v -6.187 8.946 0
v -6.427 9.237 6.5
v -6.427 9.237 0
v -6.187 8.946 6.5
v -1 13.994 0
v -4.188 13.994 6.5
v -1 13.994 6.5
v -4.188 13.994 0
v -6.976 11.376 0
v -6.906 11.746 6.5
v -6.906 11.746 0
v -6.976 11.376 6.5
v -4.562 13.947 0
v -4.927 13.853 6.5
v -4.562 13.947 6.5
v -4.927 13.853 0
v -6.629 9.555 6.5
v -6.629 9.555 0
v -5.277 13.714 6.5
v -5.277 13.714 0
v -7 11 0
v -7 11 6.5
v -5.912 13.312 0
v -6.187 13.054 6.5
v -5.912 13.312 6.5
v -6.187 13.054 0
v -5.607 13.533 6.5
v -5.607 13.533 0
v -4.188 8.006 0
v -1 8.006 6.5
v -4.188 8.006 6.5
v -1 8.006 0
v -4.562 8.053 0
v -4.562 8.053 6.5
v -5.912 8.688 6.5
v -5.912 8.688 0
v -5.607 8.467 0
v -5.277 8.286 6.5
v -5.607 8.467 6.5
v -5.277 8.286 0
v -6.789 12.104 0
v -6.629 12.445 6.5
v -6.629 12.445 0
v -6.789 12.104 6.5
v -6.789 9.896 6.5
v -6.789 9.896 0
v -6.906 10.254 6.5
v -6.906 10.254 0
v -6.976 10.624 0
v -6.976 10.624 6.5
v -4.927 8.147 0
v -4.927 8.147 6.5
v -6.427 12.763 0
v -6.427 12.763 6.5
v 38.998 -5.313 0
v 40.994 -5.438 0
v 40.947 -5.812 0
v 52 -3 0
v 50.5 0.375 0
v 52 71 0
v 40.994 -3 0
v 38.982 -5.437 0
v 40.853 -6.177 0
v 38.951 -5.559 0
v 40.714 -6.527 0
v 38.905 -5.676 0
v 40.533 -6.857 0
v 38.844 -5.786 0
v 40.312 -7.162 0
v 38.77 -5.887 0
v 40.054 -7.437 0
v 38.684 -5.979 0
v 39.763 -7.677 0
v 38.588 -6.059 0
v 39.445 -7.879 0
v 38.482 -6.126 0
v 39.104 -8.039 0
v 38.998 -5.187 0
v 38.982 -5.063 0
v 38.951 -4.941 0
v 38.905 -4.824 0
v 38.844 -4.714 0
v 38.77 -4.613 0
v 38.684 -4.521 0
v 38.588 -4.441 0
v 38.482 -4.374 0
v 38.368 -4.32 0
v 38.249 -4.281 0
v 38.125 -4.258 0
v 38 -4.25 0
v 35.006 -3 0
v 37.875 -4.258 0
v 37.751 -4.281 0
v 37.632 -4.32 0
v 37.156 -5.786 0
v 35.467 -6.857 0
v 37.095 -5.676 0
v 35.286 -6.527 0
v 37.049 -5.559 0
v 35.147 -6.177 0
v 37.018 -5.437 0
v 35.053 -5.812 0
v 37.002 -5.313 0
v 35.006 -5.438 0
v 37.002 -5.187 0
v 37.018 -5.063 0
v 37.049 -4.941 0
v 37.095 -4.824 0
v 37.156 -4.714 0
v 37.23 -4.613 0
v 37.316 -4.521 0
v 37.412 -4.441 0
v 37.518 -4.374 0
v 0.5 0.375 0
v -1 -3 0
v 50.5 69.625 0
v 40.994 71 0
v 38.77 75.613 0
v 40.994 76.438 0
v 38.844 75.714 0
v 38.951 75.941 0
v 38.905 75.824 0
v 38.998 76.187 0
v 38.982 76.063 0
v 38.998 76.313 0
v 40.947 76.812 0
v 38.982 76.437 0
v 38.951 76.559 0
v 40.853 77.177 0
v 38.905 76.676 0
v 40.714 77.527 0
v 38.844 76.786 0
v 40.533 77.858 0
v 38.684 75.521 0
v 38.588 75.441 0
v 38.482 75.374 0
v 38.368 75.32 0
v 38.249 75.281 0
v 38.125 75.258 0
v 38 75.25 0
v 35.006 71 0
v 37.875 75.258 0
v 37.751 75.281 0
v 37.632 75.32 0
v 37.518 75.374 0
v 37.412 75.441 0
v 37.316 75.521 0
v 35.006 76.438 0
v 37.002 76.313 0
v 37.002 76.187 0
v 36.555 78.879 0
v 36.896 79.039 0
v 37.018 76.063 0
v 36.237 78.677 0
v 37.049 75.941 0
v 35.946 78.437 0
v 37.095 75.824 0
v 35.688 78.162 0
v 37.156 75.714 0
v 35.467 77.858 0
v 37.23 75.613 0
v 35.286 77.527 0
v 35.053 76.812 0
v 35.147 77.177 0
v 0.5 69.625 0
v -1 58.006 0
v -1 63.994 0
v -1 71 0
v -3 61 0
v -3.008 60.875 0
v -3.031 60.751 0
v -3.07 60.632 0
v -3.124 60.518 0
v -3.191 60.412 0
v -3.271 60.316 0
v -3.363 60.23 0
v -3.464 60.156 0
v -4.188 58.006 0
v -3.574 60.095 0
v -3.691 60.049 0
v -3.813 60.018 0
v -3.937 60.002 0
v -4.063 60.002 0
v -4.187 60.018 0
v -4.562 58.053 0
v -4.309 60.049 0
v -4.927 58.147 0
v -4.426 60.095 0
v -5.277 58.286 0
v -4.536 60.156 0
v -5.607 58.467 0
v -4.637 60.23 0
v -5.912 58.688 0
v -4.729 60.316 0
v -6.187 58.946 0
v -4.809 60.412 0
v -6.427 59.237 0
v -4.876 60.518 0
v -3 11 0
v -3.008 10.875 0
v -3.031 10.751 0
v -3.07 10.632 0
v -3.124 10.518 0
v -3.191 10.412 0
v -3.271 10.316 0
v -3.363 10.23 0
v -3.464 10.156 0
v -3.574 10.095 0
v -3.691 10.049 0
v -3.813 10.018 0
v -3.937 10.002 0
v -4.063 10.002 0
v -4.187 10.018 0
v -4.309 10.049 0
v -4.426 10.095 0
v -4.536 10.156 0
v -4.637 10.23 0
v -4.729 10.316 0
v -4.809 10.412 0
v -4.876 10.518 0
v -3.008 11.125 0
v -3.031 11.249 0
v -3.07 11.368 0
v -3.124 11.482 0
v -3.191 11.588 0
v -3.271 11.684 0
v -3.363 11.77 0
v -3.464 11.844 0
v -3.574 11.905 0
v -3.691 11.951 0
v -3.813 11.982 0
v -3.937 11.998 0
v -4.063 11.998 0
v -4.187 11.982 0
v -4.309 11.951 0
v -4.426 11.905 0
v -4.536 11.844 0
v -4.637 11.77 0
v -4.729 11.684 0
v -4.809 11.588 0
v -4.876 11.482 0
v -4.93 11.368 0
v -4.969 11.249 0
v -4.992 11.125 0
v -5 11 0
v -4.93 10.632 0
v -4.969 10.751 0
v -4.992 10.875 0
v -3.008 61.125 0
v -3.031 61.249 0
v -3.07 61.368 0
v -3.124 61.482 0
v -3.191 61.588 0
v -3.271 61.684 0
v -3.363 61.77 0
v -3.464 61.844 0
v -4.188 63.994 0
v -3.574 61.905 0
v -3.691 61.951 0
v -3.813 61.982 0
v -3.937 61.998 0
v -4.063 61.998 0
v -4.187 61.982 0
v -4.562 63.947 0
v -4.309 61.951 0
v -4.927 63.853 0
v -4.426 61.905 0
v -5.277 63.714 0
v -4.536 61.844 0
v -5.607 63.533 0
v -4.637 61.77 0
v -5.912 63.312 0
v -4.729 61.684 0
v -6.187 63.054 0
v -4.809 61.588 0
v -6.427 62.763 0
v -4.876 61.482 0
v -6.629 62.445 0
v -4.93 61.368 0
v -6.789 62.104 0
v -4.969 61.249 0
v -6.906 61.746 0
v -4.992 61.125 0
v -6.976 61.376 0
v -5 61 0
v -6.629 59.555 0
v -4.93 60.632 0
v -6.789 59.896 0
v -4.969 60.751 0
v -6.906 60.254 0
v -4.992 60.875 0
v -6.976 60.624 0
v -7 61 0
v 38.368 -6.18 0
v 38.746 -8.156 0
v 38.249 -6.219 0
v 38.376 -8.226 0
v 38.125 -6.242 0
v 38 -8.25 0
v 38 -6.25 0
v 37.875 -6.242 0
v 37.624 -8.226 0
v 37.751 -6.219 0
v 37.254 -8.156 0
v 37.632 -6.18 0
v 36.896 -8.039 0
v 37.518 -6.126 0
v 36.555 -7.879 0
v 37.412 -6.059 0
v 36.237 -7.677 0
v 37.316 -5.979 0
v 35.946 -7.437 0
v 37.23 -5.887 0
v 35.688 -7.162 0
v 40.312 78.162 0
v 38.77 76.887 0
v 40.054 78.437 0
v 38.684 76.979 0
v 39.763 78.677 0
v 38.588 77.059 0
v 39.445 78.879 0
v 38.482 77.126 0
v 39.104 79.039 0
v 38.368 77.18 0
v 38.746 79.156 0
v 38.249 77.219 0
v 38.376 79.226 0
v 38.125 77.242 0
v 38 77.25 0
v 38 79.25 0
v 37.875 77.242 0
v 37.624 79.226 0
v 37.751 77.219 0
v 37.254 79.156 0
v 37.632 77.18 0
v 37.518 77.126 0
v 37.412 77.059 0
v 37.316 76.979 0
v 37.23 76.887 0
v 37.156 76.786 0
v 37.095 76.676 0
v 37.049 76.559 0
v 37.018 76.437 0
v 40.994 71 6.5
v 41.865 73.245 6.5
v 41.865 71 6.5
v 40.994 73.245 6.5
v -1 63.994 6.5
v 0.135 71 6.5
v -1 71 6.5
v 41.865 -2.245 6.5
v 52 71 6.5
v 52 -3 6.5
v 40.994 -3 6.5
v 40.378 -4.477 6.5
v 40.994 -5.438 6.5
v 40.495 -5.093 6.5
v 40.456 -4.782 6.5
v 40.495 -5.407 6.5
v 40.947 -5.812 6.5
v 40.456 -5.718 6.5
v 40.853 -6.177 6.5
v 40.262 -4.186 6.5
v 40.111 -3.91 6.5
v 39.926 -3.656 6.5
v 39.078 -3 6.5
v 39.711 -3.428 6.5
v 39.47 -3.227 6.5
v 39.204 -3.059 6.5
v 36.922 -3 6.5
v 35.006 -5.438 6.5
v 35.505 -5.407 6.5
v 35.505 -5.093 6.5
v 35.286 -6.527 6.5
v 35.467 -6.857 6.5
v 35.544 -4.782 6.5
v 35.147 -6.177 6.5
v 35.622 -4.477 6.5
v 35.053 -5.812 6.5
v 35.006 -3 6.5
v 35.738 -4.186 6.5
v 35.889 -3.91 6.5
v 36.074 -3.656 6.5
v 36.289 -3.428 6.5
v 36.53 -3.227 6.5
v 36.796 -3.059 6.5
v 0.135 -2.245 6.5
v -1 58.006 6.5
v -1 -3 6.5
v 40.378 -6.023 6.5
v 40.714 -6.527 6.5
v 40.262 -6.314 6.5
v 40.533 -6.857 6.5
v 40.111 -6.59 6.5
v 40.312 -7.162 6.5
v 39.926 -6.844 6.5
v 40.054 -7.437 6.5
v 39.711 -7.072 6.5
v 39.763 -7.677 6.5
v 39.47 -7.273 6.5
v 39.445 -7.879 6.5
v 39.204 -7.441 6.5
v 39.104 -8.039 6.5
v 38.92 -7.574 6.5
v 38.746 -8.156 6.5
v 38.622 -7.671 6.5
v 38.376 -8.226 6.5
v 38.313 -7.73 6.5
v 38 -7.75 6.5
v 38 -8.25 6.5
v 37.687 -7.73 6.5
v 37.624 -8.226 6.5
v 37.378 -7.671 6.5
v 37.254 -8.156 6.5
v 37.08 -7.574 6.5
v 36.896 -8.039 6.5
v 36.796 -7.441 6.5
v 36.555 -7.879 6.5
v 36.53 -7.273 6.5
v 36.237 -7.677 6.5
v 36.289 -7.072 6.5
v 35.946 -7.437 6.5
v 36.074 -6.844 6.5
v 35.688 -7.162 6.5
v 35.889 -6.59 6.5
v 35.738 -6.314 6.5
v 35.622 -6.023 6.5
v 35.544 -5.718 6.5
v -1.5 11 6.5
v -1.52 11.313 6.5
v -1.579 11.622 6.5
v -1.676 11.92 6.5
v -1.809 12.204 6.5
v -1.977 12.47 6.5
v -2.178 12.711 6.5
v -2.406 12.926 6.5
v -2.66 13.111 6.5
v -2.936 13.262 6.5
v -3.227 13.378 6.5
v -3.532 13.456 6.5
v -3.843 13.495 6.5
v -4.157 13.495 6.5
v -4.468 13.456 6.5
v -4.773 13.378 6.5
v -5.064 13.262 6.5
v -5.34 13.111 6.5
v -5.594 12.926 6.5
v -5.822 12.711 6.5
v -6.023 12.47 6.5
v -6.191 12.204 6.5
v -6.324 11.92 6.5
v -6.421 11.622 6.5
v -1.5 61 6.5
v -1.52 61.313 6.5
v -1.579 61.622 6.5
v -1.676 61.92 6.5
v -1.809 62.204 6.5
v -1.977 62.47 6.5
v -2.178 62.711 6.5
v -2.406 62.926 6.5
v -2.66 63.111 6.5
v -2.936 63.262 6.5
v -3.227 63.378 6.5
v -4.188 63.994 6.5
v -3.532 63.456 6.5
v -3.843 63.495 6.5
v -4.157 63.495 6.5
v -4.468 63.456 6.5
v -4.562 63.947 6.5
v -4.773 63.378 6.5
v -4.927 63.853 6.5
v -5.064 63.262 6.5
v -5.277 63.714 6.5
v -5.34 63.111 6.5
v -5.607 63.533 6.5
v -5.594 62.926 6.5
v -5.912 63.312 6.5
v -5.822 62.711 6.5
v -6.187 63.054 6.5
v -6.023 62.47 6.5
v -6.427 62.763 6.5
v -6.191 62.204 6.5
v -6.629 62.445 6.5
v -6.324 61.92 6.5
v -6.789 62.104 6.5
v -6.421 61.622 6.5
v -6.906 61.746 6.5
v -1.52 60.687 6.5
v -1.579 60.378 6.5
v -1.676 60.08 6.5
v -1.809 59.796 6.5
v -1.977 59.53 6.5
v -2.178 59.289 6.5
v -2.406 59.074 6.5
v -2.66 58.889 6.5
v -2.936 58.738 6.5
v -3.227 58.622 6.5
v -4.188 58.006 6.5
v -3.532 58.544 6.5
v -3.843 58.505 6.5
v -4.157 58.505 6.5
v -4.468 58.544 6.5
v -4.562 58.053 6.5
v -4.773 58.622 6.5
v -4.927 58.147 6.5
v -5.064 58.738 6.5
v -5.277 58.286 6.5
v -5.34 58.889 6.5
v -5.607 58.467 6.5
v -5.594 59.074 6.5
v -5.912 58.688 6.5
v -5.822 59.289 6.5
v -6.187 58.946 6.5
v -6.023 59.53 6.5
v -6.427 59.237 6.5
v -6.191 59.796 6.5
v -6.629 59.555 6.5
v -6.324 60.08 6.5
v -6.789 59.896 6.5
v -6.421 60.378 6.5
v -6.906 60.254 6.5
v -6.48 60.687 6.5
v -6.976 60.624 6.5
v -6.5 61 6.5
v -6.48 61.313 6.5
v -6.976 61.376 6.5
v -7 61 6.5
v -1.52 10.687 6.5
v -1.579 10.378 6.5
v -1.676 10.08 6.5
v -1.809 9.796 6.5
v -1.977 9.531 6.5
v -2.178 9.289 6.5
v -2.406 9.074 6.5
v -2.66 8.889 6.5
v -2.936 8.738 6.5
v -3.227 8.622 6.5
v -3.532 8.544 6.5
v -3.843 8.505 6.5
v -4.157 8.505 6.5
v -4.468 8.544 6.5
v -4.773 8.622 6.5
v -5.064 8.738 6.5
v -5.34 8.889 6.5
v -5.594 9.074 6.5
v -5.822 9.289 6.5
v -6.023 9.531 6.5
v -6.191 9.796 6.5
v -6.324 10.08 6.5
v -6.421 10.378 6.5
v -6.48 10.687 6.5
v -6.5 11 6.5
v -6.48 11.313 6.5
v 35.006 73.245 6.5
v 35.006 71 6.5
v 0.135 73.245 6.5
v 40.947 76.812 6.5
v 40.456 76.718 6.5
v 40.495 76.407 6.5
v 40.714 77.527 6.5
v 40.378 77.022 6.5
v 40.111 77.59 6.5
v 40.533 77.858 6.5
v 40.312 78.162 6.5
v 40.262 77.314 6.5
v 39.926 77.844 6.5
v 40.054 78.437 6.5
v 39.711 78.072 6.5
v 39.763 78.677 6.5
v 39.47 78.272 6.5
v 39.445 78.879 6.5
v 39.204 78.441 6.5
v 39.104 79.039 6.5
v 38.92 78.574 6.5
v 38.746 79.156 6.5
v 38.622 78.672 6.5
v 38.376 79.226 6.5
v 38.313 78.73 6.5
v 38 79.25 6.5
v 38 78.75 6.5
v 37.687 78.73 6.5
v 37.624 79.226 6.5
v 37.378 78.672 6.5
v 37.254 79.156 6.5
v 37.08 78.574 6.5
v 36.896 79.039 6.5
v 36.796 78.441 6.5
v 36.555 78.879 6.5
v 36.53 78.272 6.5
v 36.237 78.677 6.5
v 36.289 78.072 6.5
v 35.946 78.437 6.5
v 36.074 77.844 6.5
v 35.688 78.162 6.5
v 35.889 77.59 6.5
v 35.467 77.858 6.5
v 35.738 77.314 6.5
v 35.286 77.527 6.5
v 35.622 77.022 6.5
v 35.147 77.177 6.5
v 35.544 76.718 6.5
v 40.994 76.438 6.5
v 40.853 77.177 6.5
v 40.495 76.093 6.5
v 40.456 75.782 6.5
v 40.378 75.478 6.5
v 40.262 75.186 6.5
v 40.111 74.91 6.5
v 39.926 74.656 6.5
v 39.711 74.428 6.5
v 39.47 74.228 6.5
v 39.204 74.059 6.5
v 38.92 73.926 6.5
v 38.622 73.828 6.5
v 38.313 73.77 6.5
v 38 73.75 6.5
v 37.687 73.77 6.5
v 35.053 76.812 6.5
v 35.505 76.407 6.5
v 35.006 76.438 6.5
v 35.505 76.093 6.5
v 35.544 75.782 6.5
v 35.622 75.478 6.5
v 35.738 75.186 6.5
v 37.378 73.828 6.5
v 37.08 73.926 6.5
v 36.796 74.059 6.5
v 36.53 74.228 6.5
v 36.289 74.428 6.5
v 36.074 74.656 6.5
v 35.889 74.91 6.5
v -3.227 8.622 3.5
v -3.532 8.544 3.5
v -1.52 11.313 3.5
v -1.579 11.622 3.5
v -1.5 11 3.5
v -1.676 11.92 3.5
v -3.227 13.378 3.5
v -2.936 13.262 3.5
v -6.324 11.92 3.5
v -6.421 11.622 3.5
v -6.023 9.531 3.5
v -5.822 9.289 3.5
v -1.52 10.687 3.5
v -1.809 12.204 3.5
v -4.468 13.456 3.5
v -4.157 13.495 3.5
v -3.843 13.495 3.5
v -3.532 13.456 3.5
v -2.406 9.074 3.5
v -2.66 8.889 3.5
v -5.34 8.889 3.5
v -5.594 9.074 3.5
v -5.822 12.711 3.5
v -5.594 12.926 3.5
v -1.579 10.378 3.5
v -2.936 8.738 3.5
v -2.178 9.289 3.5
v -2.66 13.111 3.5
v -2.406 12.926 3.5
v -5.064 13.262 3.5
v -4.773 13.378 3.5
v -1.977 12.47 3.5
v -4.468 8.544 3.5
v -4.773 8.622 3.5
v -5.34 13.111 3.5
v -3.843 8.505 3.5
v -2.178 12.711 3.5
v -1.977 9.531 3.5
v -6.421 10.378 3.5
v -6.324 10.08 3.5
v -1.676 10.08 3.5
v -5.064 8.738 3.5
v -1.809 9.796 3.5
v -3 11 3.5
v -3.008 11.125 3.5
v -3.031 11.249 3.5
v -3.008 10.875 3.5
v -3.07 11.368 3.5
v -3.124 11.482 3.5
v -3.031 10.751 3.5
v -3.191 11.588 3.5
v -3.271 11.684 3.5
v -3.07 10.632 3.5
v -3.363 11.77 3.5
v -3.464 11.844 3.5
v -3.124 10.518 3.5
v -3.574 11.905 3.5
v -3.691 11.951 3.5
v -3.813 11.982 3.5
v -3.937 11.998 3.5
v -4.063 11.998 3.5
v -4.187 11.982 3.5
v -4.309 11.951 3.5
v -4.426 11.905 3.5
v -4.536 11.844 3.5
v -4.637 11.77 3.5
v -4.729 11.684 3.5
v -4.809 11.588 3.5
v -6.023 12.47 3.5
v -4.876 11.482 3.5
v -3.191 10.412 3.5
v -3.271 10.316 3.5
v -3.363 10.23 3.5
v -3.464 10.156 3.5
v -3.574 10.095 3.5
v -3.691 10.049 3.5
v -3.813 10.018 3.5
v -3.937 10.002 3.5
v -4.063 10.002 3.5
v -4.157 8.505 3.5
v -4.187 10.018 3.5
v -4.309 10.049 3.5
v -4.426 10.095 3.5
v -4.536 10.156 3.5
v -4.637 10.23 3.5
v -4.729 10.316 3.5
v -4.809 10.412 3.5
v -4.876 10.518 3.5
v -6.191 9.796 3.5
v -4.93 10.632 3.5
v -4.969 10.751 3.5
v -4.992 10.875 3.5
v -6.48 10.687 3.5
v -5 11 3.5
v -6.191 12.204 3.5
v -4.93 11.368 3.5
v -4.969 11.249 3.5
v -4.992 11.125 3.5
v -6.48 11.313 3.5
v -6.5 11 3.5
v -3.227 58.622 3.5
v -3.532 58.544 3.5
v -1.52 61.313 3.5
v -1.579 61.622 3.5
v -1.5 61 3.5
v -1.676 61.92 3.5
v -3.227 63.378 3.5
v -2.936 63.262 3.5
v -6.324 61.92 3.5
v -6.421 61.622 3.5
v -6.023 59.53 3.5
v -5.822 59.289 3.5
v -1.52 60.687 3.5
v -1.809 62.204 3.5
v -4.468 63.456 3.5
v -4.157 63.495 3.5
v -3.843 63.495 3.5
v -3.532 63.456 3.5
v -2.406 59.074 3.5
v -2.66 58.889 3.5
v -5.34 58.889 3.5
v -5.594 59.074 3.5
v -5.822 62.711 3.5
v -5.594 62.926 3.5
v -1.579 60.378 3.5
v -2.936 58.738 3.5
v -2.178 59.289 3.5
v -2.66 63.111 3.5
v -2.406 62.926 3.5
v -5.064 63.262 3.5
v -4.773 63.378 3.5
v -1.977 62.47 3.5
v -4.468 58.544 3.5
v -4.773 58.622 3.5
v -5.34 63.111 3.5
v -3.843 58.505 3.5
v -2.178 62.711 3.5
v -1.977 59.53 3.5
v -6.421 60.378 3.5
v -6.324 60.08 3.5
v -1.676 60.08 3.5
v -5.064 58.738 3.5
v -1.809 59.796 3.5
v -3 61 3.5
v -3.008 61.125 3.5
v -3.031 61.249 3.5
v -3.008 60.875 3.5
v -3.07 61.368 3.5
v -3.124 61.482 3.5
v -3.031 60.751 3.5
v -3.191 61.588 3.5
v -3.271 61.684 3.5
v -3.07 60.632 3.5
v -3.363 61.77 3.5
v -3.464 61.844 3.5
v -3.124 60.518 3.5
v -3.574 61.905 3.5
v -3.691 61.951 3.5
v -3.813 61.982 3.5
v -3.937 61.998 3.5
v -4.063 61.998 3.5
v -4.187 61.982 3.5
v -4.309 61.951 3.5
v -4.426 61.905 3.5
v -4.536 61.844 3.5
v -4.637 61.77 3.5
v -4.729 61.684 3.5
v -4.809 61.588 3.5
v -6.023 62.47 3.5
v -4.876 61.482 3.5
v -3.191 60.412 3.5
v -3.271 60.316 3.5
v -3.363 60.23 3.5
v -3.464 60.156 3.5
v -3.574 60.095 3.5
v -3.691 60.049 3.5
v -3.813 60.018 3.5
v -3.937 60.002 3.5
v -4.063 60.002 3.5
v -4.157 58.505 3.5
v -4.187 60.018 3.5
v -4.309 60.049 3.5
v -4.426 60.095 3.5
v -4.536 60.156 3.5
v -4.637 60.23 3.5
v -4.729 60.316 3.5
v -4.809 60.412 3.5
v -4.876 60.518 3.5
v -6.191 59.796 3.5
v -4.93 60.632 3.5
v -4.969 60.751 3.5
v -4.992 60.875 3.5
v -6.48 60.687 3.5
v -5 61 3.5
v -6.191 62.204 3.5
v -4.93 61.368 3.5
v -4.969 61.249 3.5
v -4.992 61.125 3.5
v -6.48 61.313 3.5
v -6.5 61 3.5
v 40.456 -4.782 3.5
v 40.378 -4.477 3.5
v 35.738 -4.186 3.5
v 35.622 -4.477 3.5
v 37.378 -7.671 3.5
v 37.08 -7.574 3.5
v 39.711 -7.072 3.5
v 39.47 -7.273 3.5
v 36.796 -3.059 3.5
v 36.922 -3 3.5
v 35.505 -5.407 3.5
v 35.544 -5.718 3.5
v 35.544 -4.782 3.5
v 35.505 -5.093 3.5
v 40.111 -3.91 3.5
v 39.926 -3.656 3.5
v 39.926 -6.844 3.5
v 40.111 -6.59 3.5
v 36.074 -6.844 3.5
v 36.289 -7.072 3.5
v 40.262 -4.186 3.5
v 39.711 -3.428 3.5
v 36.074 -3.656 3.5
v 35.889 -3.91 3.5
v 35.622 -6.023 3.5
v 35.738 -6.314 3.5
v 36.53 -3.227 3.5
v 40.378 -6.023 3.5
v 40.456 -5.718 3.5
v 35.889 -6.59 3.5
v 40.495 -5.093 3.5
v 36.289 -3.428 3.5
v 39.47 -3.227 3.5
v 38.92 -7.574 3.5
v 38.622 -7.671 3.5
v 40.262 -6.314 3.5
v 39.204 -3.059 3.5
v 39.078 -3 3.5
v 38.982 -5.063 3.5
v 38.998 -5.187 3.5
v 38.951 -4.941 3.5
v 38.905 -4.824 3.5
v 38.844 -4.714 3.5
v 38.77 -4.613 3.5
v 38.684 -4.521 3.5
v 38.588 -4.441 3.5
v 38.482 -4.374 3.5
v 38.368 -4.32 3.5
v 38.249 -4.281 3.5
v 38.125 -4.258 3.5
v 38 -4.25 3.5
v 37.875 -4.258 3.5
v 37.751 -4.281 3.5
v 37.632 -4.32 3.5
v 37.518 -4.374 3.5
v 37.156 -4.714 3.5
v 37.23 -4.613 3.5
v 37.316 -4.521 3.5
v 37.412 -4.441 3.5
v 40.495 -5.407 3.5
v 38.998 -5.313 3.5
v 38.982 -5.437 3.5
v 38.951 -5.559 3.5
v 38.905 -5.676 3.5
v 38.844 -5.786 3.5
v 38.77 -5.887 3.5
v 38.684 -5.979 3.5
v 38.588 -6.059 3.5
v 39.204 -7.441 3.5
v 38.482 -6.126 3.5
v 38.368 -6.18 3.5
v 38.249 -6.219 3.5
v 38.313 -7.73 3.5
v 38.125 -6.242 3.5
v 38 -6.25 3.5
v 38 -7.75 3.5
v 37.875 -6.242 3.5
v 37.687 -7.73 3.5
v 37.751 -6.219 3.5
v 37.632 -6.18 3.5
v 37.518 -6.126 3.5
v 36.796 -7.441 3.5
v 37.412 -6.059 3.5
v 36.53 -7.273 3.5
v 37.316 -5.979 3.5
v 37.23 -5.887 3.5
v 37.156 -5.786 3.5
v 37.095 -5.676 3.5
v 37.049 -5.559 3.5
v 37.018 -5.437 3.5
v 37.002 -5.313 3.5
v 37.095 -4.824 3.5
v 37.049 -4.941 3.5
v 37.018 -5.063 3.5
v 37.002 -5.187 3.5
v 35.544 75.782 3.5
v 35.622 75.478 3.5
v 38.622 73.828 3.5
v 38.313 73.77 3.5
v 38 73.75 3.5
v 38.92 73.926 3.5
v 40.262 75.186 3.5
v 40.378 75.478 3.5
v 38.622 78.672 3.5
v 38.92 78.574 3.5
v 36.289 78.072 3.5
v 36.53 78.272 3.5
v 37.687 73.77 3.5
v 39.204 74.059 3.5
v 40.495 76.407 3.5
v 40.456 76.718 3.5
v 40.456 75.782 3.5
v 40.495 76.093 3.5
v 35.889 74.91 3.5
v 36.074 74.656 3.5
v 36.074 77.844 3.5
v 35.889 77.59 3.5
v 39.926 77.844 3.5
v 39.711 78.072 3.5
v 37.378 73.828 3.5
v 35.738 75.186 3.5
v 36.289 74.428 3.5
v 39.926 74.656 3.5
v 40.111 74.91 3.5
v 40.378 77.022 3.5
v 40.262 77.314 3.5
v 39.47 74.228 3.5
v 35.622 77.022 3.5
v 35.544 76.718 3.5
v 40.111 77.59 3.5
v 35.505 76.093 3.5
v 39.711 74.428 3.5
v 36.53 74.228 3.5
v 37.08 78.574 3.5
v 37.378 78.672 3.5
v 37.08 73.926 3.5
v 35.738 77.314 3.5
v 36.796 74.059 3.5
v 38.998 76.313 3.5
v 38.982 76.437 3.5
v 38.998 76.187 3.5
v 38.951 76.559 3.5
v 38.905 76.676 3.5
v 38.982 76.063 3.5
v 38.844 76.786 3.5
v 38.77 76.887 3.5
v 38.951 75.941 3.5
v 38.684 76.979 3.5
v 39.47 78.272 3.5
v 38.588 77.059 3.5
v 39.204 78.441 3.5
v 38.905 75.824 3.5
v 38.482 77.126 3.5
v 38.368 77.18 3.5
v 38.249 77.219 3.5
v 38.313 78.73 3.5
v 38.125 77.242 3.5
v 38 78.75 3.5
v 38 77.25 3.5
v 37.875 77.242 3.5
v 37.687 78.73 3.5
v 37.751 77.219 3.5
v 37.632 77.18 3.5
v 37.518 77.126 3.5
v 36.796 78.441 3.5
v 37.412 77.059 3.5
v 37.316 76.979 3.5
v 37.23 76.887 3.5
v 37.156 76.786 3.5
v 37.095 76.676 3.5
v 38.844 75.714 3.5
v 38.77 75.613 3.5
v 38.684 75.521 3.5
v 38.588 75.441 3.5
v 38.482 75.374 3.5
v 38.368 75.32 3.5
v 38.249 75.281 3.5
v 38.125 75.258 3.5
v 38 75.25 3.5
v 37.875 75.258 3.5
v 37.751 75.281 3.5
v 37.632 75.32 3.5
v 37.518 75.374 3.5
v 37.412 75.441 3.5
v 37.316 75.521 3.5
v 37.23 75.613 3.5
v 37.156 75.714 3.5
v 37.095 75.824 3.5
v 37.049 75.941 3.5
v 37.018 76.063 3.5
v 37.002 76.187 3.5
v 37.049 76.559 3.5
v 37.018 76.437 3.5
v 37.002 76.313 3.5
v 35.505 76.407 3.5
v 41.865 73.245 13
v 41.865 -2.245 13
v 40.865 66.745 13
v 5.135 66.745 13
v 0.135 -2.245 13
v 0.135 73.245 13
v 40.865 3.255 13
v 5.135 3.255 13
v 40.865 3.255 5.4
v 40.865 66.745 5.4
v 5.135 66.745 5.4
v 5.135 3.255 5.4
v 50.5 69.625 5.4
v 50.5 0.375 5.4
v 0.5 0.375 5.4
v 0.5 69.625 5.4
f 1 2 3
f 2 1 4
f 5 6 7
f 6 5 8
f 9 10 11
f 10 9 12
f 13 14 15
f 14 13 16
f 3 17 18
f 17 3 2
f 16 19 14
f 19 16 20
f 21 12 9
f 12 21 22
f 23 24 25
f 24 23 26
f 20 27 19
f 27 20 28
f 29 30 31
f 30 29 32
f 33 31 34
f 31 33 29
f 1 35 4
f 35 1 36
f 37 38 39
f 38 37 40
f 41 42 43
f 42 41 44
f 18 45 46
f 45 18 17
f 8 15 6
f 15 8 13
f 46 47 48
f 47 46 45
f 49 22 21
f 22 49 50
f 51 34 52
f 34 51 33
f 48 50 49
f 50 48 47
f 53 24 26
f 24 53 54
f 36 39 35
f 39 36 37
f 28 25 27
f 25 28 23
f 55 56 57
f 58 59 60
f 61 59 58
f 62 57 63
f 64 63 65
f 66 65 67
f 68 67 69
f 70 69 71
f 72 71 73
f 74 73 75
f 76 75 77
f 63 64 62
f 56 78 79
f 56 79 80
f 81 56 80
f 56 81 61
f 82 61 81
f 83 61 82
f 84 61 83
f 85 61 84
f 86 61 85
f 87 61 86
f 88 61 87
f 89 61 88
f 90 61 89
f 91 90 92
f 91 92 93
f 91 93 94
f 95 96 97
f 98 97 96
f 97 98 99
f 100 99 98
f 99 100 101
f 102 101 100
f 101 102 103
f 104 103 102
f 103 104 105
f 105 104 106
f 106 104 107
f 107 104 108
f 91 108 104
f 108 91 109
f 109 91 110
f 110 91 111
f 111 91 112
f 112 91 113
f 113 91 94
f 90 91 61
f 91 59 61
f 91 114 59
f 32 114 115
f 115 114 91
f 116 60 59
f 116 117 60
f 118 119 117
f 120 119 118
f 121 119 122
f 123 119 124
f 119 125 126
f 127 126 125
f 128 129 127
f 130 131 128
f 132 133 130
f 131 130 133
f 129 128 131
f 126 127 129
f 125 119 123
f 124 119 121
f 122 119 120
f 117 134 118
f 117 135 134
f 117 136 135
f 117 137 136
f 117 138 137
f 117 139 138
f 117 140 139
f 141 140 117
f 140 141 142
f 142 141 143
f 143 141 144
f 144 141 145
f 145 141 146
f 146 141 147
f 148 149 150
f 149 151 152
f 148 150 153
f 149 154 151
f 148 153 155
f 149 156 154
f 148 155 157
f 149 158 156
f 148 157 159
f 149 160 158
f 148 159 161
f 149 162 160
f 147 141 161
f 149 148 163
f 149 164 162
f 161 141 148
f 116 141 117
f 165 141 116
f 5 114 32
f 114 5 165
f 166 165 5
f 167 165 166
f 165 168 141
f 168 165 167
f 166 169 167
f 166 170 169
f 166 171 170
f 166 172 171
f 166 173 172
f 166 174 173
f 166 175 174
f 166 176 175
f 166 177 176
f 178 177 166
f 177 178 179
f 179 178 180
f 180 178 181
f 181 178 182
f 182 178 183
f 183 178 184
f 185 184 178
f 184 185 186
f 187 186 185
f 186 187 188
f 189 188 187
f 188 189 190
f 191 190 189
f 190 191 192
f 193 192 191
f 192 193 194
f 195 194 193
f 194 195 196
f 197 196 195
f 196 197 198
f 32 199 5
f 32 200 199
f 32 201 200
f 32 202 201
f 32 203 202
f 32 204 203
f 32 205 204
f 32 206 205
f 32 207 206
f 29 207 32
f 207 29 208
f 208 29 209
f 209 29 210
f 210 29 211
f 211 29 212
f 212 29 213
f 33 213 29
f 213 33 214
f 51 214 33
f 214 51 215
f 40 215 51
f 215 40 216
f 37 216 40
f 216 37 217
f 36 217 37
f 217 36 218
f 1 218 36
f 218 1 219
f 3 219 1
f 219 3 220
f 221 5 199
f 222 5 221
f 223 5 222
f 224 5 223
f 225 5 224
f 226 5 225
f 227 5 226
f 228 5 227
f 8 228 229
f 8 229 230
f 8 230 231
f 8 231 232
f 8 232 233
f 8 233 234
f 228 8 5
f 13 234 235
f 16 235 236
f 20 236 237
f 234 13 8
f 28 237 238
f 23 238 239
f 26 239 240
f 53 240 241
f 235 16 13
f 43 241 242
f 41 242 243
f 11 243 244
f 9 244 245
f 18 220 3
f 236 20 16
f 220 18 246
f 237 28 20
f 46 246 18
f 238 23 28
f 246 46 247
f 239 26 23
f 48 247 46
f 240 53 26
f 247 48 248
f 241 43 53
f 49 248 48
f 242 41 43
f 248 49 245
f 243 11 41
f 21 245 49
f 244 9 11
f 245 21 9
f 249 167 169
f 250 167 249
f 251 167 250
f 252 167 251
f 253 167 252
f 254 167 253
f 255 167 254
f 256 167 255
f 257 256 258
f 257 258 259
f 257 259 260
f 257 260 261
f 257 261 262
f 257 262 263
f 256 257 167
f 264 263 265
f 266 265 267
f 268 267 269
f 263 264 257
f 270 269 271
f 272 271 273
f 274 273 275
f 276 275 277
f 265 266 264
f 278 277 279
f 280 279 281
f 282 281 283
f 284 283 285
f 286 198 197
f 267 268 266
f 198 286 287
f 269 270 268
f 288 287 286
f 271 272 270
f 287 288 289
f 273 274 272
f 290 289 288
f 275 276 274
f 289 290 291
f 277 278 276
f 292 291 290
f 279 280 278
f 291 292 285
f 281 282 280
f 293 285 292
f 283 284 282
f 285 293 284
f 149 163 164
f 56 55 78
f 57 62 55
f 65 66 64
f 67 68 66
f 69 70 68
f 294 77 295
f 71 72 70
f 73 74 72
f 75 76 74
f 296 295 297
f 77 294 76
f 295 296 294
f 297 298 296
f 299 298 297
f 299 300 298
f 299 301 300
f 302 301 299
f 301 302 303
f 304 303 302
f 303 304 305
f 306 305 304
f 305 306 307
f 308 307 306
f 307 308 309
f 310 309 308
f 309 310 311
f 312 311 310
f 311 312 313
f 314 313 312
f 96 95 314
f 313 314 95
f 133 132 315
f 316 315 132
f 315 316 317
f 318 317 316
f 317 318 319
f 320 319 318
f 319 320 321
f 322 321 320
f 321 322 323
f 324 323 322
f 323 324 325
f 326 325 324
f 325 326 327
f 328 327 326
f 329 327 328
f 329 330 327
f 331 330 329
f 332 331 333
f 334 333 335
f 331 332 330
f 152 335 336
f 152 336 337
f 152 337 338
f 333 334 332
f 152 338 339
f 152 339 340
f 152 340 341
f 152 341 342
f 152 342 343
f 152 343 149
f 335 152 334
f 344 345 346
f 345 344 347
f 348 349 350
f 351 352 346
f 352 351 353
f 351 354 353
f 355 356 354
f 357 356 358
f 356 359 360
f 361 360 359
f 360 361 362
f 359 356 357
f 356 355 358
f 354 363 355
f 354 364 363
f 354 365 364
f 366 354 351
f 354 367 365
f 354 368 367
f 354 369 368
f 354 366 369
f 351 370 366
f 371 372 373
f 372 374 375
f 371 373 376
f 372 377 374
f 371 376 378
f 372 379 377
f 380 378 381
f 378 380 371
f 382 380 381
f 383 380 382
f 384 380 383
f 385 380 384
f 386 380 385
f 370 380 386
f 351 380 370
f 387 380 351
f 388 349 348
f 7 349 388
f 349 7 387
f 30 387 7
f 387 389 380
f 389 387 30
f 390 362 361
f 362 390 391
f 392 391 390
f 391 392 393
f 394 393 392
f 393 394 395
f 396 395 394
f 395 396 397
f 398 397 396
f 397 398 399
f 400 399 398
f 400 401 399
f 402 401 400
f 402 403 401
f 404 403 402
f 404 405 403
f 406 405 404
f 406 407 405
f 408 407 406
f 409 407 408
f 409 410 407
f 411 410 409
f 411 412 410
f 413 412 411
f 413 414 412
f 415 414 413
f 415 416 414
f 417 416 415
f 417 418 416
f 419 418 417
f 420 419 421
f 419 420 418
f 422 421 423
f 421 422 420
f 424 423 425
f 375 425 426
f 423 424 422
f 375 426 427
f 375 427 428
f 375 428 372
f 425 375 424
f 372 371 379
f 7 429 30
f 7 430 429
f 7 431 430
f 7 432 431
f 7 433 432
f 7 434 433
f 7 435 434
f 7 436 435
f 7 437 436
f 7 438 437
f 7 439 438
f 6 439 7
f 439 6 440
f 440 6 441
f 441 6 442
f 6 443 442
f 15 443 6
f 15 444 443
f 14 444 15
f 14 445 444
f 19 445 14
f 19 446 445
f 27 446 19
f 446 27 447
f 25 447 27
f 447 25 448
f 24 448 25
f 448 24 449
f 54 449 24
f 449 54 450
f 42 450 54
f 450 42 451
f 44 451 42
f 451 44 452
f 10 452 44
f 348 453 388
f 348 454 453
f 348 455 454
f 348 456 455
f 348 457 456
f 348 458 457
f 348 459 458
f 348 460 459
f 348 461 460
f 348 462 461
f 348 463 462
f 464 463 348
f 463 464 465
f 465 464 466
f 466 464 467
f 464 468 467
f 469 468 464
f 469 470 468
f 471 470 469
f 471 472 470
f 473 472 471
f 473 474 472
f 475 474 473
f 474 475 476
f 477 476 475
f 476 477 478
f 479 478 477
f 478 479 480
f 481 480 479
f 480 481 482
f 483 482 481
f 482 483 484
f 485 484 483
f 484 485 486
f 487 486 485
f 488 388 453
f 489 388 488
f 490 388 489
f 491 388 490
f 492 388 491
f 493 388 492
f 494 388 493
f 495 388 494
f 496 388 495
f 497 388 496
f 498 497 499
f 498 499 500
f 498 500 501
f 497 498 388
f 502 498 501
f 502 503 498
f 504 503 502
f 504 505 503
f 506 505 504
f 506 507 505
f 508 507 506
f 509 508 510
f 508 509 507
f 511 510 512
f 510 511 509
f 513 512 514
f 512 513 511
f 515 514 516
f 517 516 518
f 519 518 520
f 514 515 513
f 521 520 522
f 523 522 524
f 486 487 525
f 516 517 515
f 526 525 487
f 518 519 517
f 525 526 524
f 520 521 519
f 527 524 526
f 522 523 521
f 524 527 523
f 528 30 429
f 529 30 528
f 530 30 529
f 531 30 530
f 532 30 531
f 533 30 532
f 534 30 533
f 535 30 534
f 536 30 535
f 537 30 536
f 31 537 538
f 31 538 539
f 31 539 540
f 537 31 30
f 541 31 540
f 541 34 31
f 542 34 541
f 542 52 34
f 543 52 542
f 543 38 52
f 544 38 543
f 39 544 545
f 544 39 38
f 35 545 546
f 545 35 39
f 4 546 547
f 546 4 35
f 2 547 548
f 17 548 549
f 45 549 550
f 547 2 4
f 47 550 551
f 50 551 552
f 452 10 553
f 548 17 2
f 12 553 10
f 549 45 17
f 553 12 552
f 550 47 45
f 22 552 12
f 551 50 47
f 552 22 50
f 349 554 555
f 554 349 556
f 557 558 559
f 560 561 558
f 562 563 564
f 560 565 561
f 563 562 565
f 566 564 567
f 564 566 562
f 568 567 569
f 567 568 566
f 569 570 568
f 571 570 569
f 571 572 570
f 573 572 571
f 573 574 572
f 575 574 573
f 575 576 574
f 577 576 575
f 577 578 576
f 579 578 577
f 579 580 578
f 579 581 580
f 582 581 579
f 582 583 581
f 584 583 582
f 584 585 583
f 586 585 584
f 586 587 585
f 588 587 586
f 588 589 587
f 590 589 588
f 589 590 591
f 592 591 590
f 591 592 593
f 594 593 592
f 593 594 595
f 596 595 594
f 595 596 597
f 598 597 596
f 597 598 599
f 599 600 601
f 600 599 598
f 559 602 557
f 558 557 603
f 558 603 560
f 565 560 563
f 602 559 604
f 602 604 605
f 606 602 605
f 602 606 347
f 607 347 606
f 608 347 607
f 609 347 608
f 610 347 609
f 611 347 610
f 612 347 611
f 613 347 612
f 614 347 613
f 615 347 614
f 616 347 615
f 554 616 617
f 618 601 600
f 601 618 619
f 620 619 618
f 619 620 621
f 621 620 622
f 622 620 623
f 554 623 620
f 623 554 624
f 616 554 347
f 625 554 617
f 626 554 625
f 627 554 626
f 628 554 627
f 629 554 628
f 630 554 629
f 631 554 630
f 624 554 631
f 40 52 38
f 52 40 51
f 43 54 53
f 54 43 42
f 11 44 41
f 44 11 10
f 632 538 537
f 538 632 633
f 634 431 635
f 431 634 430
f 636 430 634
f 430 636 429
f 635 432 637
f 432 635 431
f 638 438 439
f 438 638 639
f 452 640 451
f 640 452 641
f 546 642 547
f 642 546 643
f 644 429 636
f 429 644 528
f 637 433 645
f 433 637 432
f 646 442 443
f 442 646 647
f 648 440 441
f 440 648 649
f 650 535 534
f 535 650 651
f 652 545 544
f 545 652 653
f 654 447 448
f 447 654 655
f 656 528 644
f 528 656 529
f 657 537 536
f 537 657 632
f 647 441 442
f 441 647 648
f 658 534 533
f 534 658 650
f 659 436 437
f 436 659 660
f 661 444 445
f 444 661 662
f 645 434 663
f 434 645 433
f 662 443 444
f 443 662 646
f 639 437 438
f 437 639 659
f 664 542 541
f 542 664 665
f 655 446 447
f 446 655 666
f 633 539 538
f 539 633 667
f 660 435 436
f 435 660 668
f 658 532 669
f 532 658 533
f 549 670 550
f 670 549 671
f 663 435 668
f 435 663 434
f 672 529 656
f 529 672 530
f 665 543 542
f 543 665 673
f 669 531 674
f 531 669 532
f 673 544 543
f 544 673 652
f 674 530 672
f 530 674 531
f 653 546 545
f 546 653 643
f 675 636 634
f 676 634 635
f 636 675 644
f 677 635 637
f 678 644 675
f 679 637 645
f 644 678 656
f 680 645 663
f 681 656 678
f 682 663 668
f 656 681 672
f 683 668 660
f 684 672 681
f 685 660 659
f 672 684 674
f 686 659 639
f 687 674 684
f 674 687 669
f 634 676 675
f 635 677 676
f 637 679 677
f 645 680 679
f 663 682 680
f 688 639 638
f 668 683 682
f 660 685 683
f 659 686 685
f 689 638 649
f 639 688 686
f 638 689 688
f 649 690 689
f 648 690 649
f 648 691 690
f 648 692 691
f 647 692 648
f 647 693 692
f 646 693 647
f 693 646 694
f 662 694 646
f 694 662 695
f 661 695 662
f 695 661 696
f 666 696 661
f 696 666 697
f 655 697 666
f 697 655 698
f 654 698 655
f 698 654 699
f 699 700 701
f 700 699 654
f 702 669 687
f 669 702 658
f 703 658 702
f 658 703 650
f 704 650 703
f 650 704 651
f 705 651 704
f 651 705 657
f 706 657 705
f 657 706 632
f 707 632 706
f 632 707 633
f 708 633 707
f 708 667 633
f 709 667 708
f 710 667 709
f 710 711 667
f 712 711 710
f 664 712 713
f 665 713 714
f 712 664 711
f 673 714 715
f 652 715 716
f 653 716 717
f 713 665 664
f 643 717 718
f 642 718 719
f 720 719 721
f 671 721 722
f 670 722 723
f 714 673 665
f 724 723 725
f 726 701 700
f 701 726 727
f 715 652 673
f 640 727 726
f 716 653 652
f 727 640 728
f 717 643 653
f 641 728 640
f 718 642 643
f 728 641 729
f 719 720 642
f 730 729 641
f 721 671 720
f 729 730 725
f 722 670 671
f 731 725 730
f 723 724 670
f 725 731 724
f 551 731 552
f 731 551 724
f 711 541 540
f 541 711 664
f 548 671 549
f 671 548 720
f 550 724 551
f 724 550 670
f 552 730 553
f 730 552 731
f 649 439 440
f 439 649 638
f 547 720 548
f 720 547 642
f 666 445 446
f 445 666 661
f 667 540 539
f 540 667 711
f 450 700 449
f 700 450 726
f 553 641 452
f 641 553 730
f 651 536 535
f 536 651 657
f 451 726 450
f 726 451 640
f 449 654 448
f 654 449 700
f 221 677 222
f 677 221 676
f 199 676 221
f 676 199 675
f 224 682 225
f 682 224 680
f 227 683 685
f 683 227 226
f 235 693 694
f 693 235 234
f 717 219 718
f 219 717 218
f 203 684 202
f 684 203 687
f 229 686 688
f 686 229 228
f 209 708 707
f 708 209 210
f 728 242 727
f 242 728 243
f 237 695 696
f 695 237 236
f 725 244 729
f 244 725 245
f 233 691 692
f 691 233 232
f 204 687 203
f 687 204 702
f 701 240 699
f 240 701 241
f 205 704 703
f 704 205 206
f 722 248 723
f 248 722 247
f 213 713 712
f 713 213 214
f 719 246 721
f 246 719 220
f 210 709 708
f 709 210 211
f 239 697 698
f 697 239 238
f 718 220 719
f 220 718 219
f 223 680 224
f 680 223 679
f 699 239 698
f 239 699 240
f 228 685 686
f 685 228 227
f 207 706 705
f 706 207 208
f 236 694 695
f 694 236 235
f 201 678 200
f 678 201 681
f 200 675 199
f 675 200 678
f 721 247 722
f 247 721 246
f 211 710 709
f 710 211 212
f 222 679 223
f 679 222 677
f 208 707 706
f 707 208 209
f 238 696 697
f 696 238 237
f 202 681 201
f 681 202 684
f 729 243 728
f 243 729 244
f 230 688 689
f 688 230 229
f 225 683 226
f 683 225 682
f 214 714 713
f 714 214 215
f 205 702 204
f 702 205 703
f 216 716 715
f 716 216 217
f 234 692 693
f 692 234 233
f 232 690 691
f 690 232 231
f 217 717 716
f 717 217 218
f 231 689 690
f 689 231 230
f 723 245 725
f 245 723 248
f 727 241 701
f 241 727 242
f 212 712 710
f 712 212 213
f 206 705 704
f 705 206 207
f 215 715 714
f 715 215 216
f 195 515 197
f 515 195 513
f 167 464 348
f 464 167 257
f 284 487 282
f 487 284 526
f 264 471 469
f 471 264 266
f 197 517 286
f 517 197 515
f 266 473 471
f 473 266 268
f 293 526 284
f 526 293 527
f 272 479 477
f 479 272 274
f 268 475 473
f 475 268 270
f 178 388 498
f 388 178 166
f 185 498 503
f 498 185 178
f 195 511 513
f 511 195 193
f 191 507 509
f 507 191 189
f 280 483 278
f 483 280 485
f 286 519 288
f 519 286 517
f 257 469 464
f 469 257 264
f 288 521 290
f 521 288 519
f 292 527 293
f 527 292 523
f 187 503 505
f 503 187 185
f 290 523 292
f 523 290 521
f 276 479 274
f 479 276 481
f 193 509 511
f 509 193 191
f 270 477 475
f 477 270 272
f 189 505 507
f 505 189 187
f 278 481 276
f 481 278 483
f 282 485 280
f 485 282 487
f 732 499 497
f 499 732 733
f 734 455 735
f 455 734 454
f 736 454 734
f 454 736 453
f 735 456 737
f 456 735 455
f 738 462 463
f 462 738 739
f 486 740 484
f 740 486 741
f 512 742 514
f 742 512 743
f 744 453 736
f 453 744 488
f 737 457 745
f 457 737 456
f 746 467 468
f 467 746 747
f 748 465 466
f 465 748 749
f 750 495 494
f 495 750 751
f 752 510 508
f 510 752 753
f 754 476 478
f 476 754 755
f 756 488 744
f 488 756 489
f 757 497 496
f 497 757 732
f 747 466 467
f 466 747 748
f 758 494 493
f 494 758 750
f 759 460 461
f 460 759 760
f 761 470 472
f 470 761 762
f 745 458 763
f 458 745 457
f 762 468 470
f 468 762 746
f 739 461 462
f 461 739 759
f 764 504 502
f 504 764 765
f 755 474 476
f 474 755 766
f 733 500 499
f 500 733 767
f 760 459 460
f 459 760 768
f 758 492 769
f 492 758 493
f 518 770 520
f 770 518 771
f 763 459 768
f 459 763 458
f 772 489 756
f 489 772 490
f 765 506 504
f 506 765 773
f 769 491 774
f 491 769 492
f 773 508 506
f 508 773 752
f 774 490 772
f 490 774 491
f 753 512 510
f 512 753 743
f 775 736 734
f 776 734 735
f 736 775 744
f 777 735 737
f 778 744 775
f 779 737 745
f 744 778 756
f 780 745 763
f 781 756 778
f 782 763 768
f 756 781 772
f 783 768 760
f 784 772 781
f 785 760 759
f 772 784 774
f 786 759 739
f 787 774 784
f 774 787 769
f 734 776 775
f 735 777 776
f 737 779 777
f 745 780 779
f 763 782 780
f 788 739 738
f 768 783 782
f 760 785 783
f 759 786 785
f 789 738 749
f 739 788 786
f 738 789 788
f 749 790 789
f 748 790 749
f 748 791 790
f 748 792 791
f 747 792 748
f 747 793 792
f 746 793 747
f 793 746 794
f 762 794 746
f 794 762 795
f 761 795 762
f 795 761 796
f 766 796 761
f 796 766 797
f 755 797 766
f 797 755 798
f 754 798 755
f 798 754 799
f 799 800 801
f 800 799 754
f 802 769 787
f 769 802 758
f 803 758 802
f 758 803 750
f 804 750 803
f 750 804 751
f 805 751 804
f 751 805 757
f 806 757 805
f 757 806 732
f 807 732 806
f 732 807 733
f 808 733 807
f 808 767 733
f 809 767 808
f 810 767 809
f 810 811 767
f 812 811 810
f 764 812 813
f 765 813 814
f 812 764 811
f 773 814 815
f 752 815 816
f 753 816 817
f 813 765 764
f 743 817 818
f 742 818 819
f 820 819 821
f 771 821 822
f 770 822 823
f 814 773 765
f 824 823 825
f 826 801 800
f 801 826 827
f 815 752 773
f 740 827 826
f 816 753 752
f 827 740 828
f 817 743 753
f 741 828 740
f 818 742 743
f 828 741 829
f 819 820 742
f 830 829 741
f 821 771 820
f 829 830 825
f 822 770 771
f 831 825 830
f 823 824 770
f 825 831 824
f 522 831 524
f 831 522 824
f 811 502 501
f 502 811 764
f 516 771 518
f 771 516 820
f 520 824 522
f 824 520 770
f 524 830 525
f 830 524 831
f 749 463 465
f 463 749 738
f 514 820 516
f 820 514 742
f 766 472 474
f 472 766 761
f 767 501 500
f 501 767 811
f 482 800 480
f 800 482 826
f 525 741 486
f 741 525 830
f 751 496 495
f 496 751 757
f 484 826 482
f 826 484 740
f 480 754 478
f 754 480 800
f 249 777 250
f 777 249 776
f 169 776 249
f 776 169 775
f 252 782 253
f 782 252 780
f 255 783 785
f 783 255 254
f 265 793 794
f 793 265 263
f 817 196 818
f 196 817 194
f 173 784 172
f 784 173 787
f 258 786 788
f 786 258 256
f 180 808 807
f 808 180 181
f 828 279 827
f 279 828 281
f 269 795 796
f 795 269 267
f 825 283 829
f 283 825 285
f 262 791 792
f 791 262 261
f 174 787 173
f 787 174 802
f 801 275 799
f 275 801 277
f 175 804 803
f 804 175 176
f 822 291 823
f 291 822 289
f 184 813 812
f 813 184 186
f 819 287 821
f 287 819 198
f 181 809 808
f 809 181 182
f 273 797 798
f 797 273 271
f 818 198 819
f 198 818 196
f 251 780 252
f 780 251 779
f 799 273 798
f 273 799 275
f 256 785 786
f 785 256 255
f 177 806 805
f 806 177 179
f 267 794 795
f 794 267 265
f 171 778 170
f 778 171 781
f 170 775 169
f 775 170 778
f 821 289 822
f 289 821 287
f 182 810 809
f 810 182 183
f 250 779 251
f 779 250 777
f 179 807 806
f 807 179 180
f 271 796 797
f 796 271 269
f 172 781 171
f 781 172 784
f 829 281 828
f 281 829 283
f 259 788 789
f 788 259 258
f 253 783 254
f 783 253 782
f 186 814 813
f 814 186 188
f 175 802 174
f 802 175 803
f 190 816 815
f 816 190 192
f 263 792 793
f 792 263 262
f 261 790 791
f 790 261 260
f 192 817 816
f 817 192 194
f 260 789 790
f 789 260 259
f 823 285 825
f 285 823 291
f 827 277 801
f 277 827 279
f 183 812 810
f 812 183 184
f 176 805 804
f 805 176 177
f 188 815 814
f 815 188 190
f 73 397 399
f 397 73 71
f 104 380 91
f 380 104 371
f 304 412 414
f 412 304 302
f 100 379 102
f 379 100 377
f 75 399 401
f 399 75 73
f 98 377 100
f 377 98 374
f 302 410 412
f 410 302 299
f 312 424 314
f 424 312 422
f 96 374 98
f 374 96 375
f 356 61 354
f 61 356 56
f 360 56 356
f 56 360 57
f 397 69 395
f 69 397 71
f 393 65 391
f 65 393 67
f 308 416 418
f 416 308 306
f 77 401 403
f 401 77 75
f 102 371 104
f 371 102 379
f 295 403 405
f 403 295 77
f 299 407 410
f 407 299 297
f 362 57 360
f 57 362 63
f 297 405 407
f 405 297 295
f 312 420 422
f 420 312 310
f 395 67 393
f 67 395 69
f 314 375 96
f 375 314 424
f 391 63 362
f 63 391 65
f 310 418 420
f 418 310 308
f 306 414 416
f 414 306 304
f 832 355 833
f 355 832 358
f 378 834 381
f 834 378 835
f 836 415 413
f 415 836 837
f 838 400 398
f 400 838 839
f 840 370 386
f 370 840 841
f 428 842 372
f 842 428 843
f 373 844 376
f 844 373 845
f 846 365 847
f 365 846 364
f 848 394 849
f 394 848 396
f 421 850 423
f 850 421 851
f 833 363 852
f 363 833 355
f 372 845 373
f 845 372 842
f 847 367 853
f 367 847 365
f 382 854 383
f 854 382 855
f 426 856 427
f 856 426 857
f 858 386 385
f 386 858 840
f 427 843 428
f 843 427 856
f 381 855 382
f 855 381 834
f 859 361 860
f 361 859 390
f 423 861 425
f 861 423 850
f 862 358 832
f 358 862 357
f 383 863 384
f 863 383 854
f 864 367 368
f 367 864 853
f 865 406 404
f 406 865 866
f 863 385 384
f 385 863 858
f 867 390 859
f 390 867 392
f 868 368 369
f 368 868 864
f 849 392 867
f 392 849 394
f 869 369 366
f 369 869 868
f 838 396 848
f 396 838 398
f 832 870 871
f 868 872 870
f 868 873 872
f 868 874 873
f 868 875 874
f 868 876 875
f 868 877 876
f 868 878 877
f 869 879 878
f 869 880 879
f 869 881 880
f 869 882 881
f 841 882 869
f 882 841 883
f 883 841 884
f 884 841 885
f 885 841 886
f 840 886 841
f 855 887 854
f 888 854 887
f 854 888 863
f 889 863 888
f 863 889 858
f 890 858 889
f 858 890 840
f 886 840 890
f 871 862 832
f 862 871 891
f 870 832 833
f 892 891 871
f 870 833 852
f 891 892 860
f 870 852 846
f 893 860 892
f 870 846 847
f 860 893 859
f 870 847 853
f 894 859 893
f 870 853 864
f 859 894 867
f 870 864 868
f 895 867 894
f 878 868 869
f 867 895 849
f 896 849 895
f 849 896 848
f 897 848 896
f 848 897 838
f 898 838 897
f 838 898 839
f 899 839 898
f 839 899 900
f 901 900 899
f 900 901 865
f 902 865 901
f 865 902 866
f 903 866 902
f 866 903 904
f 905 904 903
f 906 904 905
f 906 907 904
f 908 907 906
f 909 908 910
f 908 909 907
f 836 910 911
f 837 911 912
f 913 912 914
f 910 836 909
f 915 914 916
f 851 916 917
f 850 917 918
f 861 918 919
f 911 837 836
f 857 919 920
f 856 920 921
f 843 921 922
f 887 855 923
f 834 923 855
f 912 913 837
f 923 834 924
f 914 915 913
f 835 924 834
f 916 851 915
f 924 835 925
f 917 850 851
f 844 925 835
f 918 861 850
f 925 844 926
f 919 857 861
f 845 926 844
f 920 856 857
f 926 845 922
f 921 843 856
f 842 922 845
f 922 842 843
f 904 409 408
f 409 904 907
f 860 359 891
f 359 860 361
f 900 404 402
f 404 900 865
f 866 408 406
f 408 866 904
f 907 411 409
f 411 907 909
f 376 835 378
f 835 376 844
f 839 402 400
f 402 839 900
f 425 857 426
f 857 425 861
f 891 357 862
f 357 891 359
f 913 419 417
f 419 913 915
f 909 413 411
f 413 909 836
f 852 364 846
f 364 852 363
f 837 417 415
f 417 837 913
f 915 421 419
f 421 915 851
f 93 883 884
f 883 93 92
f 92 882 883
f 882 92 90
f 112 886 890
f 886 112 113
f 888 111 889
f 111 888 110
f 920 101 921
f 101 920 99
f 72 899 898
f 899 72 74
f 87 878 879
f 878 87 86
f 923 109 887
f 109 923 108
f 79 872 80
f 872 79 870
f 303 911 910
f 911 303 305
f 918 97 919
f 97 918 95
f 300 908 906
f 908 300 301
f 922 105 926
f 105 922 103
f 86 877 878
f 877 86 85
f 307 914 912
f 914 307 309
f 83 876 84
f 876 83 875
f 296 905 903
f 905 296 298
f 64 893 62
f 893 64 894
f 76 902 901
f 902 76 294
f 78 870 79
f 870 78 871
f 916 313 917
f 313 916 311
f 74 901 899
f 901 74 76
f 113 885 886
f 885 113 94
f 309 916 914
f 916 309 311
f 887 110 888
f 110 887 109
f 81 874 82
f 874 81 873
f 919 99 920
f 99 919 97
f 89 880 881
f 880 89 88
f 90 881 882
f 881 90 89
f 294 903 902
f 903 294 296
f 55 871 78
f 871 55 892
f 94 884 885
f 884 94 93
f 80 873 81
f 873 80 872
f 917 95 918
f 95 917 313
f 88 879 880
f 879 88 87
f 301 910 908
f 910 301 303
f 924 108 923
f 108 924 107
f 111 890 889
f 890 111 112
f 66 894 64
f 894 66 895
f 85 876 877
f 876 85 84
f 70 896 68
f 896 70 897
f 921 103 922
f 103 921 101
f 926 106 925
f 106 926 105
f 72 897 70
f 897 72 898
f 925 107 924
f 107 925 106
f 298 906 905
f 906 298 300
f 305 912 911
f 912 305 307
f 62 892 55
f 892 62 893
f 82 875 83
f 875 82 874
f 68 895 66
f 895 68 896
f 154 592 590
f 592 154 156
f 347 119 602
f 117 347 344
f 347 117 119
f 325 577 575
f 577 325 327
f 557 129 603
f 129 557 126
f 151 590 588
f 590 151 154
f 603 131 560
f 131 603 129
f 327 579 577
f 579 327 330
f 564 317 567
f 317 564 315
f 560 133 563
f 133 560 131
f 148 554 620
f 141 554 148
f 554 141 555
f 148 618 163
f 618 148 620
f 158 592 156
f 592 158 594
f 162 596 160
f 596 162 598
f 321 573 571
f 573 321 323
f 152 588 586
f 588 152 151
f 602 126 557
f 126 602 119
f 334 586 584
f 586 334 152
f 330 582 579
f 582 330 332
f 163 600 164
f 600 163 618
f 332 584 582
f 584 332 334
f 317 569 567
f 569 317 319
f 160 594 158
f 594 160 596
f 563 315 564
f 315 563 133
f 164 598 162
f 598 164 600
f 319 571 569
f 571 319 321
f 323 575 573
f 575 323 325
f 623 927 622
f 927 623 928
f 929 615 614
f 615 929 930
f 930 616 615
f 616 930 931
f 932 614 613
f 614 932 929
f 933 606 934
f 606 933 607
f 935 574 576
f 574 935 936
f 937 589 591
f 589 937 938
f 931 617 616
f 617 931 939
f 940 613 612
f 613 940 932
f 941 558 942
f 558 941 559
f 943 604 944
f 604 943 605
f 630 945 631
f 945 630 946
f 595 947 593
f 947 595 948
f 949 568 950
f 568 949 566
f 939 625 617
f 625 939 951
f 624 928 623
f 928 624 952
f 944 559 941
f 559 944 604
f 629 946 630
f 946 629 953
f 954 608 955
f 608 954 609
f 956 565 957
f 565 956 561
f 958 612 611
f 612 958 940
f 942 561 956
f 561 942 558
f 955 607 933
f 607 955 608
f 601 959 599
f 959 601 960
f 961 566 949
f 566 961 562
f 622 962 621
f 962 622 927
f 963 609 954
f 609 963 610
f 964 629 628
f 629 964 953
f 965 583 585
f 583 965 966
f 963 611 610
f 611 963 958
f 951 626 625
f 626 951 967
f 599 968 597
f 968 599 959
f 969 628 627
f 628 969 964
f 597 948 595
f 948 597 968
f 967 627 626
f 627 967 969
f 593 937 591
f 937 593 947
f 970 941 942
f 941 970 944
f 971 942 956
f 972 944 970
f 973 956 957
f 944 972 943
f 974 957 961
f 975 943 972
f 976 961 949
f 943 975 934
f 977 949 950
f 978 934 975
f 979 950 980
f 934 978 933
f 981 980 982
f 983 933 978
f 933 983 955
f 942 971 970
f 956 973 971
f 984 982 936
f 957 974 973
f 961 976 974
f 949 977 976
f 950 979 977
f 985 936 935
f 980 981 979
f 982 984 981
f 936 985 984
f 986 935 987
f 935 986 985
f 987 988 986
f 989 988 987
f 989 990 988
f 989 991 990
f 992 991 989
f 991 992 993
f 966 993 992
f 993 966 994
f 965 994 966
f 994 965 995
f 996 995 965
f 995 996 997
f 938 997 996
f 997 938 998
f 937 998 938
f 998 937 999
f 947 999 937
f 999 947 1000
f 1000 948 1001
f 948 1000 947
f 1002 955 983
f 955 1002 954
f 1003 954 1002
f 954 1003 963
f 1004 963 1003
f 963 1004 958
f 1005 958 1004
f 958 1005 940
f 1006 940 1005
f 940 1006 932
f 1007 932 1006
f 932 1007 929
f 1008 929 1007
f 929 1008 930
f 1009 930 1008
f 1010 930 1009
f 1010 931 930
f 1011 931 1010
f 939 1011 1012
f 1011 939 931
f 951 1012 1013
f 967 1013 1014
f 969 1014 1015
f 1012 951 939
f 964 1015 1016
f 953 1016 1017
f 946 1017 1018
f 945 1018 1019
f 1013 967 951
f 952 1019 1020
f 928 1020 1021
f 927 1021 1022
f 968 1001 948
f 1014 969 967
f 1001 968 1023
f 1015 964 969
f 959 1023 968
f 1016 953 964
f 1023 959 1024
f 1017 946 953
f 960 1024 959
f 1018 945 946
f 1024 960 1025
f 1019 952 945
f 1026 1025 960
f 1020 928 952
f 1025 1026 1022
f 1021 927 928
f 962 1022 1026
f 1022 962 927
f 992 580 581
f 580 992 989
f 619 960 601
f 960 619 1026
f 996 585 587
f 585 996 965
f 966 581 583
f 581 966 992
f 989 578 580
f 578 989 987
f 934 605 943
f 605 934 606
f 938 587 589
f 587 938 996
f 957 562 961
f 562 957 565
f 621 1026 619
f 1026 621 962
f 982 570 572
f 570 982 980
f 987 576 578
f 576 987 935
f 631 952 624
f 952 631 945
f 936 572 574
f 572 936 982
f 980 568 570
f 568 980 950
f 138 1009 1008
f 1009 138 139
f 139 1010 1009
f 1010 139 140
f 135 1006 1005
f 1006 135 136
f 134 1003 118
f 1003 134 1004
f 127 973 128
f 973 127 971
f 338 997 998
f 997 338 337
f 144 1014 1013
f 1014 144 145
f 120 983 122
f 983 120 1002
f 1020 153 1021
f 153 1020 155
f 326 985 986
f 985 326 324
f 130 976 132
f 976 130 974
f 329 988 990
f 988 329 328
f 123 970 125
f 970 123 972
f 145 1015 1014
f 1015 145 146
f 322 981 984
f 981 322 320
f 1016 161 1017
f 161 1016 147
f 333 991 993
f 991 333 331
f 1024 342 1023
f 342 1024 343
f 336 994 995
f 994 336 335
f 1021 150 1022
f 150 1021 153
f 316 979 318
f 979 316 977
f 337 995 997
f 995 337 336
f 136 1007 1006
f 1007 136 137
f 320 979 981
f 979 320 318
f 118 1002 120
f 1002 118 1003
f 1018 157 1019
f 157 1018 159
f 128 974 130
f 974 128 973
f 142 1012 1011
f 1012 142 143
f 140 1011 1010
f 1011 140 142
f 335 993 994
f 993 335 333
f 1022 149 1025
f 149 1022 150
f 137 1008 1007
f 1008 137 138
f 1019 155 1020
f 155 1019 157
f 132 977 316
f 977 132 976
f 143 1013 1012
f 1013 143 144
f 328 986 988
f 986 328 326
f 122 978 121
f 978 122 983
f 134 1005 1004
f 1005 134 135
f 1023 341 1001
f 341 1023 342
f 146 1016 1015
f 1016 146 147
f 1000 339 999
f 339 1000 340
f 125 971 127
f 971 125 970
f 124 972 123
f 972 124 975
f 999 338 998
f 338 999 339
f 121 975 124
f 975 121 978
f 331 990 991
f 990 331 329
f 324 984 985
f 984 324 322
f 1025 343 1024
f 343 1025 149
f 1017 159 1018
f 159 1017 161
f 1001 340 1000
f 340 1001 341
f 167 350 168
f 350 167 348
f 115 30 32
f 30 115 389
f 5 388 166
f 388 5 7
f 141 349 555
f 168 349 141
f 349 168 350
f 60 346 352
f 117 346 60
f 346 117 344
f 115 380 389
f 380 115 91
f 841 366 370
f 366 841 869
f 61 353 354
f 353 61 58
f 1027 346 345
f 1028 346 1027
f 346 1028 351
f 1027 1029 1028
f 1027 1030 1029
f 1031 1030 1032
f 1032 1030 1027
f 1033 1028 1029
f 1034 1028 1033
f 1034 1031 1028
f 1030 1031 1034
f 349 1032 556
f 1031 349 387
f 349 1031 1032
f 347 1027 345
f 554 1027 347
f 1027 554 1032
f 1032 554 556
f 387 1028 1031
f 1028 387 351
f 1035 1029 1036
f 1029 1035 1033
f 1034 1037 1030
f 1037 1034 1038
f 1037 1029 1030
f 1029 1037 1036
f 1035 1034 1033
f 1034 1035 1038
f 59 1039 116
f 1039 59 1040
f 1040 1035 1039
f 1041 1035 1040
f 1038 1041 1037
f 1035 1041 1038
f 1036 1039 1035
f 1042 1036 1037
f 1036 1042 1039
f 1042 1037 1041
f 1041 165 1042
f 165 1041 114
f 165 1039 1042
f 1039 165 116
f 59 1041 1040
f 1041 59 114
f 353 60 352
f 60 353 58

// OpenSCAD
$fn=50;
outer_x = 60;
outer_y = 72;

aperture_x = 50;
aperture_y = 69.25;

height = 4;


viewport_x = 29.73+2;
viewport_y =59.49;
screen_clearance = 4;

rim_thickness = 6;

module mounting_lug(ht) {
    difference() {
       hull() {
        cylinder(d=6,h=ht);
        translate([6,0,0]) cylinder(d=6,h=ht);
       }
       translate([0,0,3.5]) cylinder(d=5,h=10);
       translate([0,0,-1]) cylinder(d=2,h=10);
   }
}

difference() {
union() {
    translate([-1,-3,0]) cube([outer_x,outer_y+2,height+2.5]);




//50mm apart

//outer y= 72. So, 11 in.
translate([-4,(outer_y - 50)/2,0]) {
    mounting_lug(height+2.5);
    translate([0,50,0]) mounting_lug(height+2.5);
}


//holes are 80mm apart.

translate([0,-5.25,0]) {
    translate([38,0,0]) rotate(90) mounting_lug(height+2.5);
    translate([38,81.5,0]) rotate(270) mounting_lug(height+2.5);
}

//the raised lip
 translate([(0 + outer_x - (viewport_x+ screen_clearance)) /2 - 12, -1 + (outer_y - (viewport_y + screen_clearance))/2-5.5,height+2.5]) cube([viewport_x + screen_clearance + rim_thickness, viewport_y + screen_clearance + rim_thickness + 6, height+2.5]);


}






//the screen viewing window

 translate([(0 + outer_x - (viewport_x+ screen_clearance)) /2 - 7, -1 + (outer_y - (viewport_y + screen_clearance))/2,]) cube([viewport_x + screen_clearance, viewport_y + screen_clearance, 50]);


//the aperture
    translate([(outer_x - aperture_x) /2 -4.5 ,-1  +(outer_y - aperture_y) /2 ,-0.1]) cube([aperture_x, aperture_y, height + 2.5 -1]);
    
    

//chops the bottom off.
translate([52,-5,-0.1]) cube([100,100,100]);
}
